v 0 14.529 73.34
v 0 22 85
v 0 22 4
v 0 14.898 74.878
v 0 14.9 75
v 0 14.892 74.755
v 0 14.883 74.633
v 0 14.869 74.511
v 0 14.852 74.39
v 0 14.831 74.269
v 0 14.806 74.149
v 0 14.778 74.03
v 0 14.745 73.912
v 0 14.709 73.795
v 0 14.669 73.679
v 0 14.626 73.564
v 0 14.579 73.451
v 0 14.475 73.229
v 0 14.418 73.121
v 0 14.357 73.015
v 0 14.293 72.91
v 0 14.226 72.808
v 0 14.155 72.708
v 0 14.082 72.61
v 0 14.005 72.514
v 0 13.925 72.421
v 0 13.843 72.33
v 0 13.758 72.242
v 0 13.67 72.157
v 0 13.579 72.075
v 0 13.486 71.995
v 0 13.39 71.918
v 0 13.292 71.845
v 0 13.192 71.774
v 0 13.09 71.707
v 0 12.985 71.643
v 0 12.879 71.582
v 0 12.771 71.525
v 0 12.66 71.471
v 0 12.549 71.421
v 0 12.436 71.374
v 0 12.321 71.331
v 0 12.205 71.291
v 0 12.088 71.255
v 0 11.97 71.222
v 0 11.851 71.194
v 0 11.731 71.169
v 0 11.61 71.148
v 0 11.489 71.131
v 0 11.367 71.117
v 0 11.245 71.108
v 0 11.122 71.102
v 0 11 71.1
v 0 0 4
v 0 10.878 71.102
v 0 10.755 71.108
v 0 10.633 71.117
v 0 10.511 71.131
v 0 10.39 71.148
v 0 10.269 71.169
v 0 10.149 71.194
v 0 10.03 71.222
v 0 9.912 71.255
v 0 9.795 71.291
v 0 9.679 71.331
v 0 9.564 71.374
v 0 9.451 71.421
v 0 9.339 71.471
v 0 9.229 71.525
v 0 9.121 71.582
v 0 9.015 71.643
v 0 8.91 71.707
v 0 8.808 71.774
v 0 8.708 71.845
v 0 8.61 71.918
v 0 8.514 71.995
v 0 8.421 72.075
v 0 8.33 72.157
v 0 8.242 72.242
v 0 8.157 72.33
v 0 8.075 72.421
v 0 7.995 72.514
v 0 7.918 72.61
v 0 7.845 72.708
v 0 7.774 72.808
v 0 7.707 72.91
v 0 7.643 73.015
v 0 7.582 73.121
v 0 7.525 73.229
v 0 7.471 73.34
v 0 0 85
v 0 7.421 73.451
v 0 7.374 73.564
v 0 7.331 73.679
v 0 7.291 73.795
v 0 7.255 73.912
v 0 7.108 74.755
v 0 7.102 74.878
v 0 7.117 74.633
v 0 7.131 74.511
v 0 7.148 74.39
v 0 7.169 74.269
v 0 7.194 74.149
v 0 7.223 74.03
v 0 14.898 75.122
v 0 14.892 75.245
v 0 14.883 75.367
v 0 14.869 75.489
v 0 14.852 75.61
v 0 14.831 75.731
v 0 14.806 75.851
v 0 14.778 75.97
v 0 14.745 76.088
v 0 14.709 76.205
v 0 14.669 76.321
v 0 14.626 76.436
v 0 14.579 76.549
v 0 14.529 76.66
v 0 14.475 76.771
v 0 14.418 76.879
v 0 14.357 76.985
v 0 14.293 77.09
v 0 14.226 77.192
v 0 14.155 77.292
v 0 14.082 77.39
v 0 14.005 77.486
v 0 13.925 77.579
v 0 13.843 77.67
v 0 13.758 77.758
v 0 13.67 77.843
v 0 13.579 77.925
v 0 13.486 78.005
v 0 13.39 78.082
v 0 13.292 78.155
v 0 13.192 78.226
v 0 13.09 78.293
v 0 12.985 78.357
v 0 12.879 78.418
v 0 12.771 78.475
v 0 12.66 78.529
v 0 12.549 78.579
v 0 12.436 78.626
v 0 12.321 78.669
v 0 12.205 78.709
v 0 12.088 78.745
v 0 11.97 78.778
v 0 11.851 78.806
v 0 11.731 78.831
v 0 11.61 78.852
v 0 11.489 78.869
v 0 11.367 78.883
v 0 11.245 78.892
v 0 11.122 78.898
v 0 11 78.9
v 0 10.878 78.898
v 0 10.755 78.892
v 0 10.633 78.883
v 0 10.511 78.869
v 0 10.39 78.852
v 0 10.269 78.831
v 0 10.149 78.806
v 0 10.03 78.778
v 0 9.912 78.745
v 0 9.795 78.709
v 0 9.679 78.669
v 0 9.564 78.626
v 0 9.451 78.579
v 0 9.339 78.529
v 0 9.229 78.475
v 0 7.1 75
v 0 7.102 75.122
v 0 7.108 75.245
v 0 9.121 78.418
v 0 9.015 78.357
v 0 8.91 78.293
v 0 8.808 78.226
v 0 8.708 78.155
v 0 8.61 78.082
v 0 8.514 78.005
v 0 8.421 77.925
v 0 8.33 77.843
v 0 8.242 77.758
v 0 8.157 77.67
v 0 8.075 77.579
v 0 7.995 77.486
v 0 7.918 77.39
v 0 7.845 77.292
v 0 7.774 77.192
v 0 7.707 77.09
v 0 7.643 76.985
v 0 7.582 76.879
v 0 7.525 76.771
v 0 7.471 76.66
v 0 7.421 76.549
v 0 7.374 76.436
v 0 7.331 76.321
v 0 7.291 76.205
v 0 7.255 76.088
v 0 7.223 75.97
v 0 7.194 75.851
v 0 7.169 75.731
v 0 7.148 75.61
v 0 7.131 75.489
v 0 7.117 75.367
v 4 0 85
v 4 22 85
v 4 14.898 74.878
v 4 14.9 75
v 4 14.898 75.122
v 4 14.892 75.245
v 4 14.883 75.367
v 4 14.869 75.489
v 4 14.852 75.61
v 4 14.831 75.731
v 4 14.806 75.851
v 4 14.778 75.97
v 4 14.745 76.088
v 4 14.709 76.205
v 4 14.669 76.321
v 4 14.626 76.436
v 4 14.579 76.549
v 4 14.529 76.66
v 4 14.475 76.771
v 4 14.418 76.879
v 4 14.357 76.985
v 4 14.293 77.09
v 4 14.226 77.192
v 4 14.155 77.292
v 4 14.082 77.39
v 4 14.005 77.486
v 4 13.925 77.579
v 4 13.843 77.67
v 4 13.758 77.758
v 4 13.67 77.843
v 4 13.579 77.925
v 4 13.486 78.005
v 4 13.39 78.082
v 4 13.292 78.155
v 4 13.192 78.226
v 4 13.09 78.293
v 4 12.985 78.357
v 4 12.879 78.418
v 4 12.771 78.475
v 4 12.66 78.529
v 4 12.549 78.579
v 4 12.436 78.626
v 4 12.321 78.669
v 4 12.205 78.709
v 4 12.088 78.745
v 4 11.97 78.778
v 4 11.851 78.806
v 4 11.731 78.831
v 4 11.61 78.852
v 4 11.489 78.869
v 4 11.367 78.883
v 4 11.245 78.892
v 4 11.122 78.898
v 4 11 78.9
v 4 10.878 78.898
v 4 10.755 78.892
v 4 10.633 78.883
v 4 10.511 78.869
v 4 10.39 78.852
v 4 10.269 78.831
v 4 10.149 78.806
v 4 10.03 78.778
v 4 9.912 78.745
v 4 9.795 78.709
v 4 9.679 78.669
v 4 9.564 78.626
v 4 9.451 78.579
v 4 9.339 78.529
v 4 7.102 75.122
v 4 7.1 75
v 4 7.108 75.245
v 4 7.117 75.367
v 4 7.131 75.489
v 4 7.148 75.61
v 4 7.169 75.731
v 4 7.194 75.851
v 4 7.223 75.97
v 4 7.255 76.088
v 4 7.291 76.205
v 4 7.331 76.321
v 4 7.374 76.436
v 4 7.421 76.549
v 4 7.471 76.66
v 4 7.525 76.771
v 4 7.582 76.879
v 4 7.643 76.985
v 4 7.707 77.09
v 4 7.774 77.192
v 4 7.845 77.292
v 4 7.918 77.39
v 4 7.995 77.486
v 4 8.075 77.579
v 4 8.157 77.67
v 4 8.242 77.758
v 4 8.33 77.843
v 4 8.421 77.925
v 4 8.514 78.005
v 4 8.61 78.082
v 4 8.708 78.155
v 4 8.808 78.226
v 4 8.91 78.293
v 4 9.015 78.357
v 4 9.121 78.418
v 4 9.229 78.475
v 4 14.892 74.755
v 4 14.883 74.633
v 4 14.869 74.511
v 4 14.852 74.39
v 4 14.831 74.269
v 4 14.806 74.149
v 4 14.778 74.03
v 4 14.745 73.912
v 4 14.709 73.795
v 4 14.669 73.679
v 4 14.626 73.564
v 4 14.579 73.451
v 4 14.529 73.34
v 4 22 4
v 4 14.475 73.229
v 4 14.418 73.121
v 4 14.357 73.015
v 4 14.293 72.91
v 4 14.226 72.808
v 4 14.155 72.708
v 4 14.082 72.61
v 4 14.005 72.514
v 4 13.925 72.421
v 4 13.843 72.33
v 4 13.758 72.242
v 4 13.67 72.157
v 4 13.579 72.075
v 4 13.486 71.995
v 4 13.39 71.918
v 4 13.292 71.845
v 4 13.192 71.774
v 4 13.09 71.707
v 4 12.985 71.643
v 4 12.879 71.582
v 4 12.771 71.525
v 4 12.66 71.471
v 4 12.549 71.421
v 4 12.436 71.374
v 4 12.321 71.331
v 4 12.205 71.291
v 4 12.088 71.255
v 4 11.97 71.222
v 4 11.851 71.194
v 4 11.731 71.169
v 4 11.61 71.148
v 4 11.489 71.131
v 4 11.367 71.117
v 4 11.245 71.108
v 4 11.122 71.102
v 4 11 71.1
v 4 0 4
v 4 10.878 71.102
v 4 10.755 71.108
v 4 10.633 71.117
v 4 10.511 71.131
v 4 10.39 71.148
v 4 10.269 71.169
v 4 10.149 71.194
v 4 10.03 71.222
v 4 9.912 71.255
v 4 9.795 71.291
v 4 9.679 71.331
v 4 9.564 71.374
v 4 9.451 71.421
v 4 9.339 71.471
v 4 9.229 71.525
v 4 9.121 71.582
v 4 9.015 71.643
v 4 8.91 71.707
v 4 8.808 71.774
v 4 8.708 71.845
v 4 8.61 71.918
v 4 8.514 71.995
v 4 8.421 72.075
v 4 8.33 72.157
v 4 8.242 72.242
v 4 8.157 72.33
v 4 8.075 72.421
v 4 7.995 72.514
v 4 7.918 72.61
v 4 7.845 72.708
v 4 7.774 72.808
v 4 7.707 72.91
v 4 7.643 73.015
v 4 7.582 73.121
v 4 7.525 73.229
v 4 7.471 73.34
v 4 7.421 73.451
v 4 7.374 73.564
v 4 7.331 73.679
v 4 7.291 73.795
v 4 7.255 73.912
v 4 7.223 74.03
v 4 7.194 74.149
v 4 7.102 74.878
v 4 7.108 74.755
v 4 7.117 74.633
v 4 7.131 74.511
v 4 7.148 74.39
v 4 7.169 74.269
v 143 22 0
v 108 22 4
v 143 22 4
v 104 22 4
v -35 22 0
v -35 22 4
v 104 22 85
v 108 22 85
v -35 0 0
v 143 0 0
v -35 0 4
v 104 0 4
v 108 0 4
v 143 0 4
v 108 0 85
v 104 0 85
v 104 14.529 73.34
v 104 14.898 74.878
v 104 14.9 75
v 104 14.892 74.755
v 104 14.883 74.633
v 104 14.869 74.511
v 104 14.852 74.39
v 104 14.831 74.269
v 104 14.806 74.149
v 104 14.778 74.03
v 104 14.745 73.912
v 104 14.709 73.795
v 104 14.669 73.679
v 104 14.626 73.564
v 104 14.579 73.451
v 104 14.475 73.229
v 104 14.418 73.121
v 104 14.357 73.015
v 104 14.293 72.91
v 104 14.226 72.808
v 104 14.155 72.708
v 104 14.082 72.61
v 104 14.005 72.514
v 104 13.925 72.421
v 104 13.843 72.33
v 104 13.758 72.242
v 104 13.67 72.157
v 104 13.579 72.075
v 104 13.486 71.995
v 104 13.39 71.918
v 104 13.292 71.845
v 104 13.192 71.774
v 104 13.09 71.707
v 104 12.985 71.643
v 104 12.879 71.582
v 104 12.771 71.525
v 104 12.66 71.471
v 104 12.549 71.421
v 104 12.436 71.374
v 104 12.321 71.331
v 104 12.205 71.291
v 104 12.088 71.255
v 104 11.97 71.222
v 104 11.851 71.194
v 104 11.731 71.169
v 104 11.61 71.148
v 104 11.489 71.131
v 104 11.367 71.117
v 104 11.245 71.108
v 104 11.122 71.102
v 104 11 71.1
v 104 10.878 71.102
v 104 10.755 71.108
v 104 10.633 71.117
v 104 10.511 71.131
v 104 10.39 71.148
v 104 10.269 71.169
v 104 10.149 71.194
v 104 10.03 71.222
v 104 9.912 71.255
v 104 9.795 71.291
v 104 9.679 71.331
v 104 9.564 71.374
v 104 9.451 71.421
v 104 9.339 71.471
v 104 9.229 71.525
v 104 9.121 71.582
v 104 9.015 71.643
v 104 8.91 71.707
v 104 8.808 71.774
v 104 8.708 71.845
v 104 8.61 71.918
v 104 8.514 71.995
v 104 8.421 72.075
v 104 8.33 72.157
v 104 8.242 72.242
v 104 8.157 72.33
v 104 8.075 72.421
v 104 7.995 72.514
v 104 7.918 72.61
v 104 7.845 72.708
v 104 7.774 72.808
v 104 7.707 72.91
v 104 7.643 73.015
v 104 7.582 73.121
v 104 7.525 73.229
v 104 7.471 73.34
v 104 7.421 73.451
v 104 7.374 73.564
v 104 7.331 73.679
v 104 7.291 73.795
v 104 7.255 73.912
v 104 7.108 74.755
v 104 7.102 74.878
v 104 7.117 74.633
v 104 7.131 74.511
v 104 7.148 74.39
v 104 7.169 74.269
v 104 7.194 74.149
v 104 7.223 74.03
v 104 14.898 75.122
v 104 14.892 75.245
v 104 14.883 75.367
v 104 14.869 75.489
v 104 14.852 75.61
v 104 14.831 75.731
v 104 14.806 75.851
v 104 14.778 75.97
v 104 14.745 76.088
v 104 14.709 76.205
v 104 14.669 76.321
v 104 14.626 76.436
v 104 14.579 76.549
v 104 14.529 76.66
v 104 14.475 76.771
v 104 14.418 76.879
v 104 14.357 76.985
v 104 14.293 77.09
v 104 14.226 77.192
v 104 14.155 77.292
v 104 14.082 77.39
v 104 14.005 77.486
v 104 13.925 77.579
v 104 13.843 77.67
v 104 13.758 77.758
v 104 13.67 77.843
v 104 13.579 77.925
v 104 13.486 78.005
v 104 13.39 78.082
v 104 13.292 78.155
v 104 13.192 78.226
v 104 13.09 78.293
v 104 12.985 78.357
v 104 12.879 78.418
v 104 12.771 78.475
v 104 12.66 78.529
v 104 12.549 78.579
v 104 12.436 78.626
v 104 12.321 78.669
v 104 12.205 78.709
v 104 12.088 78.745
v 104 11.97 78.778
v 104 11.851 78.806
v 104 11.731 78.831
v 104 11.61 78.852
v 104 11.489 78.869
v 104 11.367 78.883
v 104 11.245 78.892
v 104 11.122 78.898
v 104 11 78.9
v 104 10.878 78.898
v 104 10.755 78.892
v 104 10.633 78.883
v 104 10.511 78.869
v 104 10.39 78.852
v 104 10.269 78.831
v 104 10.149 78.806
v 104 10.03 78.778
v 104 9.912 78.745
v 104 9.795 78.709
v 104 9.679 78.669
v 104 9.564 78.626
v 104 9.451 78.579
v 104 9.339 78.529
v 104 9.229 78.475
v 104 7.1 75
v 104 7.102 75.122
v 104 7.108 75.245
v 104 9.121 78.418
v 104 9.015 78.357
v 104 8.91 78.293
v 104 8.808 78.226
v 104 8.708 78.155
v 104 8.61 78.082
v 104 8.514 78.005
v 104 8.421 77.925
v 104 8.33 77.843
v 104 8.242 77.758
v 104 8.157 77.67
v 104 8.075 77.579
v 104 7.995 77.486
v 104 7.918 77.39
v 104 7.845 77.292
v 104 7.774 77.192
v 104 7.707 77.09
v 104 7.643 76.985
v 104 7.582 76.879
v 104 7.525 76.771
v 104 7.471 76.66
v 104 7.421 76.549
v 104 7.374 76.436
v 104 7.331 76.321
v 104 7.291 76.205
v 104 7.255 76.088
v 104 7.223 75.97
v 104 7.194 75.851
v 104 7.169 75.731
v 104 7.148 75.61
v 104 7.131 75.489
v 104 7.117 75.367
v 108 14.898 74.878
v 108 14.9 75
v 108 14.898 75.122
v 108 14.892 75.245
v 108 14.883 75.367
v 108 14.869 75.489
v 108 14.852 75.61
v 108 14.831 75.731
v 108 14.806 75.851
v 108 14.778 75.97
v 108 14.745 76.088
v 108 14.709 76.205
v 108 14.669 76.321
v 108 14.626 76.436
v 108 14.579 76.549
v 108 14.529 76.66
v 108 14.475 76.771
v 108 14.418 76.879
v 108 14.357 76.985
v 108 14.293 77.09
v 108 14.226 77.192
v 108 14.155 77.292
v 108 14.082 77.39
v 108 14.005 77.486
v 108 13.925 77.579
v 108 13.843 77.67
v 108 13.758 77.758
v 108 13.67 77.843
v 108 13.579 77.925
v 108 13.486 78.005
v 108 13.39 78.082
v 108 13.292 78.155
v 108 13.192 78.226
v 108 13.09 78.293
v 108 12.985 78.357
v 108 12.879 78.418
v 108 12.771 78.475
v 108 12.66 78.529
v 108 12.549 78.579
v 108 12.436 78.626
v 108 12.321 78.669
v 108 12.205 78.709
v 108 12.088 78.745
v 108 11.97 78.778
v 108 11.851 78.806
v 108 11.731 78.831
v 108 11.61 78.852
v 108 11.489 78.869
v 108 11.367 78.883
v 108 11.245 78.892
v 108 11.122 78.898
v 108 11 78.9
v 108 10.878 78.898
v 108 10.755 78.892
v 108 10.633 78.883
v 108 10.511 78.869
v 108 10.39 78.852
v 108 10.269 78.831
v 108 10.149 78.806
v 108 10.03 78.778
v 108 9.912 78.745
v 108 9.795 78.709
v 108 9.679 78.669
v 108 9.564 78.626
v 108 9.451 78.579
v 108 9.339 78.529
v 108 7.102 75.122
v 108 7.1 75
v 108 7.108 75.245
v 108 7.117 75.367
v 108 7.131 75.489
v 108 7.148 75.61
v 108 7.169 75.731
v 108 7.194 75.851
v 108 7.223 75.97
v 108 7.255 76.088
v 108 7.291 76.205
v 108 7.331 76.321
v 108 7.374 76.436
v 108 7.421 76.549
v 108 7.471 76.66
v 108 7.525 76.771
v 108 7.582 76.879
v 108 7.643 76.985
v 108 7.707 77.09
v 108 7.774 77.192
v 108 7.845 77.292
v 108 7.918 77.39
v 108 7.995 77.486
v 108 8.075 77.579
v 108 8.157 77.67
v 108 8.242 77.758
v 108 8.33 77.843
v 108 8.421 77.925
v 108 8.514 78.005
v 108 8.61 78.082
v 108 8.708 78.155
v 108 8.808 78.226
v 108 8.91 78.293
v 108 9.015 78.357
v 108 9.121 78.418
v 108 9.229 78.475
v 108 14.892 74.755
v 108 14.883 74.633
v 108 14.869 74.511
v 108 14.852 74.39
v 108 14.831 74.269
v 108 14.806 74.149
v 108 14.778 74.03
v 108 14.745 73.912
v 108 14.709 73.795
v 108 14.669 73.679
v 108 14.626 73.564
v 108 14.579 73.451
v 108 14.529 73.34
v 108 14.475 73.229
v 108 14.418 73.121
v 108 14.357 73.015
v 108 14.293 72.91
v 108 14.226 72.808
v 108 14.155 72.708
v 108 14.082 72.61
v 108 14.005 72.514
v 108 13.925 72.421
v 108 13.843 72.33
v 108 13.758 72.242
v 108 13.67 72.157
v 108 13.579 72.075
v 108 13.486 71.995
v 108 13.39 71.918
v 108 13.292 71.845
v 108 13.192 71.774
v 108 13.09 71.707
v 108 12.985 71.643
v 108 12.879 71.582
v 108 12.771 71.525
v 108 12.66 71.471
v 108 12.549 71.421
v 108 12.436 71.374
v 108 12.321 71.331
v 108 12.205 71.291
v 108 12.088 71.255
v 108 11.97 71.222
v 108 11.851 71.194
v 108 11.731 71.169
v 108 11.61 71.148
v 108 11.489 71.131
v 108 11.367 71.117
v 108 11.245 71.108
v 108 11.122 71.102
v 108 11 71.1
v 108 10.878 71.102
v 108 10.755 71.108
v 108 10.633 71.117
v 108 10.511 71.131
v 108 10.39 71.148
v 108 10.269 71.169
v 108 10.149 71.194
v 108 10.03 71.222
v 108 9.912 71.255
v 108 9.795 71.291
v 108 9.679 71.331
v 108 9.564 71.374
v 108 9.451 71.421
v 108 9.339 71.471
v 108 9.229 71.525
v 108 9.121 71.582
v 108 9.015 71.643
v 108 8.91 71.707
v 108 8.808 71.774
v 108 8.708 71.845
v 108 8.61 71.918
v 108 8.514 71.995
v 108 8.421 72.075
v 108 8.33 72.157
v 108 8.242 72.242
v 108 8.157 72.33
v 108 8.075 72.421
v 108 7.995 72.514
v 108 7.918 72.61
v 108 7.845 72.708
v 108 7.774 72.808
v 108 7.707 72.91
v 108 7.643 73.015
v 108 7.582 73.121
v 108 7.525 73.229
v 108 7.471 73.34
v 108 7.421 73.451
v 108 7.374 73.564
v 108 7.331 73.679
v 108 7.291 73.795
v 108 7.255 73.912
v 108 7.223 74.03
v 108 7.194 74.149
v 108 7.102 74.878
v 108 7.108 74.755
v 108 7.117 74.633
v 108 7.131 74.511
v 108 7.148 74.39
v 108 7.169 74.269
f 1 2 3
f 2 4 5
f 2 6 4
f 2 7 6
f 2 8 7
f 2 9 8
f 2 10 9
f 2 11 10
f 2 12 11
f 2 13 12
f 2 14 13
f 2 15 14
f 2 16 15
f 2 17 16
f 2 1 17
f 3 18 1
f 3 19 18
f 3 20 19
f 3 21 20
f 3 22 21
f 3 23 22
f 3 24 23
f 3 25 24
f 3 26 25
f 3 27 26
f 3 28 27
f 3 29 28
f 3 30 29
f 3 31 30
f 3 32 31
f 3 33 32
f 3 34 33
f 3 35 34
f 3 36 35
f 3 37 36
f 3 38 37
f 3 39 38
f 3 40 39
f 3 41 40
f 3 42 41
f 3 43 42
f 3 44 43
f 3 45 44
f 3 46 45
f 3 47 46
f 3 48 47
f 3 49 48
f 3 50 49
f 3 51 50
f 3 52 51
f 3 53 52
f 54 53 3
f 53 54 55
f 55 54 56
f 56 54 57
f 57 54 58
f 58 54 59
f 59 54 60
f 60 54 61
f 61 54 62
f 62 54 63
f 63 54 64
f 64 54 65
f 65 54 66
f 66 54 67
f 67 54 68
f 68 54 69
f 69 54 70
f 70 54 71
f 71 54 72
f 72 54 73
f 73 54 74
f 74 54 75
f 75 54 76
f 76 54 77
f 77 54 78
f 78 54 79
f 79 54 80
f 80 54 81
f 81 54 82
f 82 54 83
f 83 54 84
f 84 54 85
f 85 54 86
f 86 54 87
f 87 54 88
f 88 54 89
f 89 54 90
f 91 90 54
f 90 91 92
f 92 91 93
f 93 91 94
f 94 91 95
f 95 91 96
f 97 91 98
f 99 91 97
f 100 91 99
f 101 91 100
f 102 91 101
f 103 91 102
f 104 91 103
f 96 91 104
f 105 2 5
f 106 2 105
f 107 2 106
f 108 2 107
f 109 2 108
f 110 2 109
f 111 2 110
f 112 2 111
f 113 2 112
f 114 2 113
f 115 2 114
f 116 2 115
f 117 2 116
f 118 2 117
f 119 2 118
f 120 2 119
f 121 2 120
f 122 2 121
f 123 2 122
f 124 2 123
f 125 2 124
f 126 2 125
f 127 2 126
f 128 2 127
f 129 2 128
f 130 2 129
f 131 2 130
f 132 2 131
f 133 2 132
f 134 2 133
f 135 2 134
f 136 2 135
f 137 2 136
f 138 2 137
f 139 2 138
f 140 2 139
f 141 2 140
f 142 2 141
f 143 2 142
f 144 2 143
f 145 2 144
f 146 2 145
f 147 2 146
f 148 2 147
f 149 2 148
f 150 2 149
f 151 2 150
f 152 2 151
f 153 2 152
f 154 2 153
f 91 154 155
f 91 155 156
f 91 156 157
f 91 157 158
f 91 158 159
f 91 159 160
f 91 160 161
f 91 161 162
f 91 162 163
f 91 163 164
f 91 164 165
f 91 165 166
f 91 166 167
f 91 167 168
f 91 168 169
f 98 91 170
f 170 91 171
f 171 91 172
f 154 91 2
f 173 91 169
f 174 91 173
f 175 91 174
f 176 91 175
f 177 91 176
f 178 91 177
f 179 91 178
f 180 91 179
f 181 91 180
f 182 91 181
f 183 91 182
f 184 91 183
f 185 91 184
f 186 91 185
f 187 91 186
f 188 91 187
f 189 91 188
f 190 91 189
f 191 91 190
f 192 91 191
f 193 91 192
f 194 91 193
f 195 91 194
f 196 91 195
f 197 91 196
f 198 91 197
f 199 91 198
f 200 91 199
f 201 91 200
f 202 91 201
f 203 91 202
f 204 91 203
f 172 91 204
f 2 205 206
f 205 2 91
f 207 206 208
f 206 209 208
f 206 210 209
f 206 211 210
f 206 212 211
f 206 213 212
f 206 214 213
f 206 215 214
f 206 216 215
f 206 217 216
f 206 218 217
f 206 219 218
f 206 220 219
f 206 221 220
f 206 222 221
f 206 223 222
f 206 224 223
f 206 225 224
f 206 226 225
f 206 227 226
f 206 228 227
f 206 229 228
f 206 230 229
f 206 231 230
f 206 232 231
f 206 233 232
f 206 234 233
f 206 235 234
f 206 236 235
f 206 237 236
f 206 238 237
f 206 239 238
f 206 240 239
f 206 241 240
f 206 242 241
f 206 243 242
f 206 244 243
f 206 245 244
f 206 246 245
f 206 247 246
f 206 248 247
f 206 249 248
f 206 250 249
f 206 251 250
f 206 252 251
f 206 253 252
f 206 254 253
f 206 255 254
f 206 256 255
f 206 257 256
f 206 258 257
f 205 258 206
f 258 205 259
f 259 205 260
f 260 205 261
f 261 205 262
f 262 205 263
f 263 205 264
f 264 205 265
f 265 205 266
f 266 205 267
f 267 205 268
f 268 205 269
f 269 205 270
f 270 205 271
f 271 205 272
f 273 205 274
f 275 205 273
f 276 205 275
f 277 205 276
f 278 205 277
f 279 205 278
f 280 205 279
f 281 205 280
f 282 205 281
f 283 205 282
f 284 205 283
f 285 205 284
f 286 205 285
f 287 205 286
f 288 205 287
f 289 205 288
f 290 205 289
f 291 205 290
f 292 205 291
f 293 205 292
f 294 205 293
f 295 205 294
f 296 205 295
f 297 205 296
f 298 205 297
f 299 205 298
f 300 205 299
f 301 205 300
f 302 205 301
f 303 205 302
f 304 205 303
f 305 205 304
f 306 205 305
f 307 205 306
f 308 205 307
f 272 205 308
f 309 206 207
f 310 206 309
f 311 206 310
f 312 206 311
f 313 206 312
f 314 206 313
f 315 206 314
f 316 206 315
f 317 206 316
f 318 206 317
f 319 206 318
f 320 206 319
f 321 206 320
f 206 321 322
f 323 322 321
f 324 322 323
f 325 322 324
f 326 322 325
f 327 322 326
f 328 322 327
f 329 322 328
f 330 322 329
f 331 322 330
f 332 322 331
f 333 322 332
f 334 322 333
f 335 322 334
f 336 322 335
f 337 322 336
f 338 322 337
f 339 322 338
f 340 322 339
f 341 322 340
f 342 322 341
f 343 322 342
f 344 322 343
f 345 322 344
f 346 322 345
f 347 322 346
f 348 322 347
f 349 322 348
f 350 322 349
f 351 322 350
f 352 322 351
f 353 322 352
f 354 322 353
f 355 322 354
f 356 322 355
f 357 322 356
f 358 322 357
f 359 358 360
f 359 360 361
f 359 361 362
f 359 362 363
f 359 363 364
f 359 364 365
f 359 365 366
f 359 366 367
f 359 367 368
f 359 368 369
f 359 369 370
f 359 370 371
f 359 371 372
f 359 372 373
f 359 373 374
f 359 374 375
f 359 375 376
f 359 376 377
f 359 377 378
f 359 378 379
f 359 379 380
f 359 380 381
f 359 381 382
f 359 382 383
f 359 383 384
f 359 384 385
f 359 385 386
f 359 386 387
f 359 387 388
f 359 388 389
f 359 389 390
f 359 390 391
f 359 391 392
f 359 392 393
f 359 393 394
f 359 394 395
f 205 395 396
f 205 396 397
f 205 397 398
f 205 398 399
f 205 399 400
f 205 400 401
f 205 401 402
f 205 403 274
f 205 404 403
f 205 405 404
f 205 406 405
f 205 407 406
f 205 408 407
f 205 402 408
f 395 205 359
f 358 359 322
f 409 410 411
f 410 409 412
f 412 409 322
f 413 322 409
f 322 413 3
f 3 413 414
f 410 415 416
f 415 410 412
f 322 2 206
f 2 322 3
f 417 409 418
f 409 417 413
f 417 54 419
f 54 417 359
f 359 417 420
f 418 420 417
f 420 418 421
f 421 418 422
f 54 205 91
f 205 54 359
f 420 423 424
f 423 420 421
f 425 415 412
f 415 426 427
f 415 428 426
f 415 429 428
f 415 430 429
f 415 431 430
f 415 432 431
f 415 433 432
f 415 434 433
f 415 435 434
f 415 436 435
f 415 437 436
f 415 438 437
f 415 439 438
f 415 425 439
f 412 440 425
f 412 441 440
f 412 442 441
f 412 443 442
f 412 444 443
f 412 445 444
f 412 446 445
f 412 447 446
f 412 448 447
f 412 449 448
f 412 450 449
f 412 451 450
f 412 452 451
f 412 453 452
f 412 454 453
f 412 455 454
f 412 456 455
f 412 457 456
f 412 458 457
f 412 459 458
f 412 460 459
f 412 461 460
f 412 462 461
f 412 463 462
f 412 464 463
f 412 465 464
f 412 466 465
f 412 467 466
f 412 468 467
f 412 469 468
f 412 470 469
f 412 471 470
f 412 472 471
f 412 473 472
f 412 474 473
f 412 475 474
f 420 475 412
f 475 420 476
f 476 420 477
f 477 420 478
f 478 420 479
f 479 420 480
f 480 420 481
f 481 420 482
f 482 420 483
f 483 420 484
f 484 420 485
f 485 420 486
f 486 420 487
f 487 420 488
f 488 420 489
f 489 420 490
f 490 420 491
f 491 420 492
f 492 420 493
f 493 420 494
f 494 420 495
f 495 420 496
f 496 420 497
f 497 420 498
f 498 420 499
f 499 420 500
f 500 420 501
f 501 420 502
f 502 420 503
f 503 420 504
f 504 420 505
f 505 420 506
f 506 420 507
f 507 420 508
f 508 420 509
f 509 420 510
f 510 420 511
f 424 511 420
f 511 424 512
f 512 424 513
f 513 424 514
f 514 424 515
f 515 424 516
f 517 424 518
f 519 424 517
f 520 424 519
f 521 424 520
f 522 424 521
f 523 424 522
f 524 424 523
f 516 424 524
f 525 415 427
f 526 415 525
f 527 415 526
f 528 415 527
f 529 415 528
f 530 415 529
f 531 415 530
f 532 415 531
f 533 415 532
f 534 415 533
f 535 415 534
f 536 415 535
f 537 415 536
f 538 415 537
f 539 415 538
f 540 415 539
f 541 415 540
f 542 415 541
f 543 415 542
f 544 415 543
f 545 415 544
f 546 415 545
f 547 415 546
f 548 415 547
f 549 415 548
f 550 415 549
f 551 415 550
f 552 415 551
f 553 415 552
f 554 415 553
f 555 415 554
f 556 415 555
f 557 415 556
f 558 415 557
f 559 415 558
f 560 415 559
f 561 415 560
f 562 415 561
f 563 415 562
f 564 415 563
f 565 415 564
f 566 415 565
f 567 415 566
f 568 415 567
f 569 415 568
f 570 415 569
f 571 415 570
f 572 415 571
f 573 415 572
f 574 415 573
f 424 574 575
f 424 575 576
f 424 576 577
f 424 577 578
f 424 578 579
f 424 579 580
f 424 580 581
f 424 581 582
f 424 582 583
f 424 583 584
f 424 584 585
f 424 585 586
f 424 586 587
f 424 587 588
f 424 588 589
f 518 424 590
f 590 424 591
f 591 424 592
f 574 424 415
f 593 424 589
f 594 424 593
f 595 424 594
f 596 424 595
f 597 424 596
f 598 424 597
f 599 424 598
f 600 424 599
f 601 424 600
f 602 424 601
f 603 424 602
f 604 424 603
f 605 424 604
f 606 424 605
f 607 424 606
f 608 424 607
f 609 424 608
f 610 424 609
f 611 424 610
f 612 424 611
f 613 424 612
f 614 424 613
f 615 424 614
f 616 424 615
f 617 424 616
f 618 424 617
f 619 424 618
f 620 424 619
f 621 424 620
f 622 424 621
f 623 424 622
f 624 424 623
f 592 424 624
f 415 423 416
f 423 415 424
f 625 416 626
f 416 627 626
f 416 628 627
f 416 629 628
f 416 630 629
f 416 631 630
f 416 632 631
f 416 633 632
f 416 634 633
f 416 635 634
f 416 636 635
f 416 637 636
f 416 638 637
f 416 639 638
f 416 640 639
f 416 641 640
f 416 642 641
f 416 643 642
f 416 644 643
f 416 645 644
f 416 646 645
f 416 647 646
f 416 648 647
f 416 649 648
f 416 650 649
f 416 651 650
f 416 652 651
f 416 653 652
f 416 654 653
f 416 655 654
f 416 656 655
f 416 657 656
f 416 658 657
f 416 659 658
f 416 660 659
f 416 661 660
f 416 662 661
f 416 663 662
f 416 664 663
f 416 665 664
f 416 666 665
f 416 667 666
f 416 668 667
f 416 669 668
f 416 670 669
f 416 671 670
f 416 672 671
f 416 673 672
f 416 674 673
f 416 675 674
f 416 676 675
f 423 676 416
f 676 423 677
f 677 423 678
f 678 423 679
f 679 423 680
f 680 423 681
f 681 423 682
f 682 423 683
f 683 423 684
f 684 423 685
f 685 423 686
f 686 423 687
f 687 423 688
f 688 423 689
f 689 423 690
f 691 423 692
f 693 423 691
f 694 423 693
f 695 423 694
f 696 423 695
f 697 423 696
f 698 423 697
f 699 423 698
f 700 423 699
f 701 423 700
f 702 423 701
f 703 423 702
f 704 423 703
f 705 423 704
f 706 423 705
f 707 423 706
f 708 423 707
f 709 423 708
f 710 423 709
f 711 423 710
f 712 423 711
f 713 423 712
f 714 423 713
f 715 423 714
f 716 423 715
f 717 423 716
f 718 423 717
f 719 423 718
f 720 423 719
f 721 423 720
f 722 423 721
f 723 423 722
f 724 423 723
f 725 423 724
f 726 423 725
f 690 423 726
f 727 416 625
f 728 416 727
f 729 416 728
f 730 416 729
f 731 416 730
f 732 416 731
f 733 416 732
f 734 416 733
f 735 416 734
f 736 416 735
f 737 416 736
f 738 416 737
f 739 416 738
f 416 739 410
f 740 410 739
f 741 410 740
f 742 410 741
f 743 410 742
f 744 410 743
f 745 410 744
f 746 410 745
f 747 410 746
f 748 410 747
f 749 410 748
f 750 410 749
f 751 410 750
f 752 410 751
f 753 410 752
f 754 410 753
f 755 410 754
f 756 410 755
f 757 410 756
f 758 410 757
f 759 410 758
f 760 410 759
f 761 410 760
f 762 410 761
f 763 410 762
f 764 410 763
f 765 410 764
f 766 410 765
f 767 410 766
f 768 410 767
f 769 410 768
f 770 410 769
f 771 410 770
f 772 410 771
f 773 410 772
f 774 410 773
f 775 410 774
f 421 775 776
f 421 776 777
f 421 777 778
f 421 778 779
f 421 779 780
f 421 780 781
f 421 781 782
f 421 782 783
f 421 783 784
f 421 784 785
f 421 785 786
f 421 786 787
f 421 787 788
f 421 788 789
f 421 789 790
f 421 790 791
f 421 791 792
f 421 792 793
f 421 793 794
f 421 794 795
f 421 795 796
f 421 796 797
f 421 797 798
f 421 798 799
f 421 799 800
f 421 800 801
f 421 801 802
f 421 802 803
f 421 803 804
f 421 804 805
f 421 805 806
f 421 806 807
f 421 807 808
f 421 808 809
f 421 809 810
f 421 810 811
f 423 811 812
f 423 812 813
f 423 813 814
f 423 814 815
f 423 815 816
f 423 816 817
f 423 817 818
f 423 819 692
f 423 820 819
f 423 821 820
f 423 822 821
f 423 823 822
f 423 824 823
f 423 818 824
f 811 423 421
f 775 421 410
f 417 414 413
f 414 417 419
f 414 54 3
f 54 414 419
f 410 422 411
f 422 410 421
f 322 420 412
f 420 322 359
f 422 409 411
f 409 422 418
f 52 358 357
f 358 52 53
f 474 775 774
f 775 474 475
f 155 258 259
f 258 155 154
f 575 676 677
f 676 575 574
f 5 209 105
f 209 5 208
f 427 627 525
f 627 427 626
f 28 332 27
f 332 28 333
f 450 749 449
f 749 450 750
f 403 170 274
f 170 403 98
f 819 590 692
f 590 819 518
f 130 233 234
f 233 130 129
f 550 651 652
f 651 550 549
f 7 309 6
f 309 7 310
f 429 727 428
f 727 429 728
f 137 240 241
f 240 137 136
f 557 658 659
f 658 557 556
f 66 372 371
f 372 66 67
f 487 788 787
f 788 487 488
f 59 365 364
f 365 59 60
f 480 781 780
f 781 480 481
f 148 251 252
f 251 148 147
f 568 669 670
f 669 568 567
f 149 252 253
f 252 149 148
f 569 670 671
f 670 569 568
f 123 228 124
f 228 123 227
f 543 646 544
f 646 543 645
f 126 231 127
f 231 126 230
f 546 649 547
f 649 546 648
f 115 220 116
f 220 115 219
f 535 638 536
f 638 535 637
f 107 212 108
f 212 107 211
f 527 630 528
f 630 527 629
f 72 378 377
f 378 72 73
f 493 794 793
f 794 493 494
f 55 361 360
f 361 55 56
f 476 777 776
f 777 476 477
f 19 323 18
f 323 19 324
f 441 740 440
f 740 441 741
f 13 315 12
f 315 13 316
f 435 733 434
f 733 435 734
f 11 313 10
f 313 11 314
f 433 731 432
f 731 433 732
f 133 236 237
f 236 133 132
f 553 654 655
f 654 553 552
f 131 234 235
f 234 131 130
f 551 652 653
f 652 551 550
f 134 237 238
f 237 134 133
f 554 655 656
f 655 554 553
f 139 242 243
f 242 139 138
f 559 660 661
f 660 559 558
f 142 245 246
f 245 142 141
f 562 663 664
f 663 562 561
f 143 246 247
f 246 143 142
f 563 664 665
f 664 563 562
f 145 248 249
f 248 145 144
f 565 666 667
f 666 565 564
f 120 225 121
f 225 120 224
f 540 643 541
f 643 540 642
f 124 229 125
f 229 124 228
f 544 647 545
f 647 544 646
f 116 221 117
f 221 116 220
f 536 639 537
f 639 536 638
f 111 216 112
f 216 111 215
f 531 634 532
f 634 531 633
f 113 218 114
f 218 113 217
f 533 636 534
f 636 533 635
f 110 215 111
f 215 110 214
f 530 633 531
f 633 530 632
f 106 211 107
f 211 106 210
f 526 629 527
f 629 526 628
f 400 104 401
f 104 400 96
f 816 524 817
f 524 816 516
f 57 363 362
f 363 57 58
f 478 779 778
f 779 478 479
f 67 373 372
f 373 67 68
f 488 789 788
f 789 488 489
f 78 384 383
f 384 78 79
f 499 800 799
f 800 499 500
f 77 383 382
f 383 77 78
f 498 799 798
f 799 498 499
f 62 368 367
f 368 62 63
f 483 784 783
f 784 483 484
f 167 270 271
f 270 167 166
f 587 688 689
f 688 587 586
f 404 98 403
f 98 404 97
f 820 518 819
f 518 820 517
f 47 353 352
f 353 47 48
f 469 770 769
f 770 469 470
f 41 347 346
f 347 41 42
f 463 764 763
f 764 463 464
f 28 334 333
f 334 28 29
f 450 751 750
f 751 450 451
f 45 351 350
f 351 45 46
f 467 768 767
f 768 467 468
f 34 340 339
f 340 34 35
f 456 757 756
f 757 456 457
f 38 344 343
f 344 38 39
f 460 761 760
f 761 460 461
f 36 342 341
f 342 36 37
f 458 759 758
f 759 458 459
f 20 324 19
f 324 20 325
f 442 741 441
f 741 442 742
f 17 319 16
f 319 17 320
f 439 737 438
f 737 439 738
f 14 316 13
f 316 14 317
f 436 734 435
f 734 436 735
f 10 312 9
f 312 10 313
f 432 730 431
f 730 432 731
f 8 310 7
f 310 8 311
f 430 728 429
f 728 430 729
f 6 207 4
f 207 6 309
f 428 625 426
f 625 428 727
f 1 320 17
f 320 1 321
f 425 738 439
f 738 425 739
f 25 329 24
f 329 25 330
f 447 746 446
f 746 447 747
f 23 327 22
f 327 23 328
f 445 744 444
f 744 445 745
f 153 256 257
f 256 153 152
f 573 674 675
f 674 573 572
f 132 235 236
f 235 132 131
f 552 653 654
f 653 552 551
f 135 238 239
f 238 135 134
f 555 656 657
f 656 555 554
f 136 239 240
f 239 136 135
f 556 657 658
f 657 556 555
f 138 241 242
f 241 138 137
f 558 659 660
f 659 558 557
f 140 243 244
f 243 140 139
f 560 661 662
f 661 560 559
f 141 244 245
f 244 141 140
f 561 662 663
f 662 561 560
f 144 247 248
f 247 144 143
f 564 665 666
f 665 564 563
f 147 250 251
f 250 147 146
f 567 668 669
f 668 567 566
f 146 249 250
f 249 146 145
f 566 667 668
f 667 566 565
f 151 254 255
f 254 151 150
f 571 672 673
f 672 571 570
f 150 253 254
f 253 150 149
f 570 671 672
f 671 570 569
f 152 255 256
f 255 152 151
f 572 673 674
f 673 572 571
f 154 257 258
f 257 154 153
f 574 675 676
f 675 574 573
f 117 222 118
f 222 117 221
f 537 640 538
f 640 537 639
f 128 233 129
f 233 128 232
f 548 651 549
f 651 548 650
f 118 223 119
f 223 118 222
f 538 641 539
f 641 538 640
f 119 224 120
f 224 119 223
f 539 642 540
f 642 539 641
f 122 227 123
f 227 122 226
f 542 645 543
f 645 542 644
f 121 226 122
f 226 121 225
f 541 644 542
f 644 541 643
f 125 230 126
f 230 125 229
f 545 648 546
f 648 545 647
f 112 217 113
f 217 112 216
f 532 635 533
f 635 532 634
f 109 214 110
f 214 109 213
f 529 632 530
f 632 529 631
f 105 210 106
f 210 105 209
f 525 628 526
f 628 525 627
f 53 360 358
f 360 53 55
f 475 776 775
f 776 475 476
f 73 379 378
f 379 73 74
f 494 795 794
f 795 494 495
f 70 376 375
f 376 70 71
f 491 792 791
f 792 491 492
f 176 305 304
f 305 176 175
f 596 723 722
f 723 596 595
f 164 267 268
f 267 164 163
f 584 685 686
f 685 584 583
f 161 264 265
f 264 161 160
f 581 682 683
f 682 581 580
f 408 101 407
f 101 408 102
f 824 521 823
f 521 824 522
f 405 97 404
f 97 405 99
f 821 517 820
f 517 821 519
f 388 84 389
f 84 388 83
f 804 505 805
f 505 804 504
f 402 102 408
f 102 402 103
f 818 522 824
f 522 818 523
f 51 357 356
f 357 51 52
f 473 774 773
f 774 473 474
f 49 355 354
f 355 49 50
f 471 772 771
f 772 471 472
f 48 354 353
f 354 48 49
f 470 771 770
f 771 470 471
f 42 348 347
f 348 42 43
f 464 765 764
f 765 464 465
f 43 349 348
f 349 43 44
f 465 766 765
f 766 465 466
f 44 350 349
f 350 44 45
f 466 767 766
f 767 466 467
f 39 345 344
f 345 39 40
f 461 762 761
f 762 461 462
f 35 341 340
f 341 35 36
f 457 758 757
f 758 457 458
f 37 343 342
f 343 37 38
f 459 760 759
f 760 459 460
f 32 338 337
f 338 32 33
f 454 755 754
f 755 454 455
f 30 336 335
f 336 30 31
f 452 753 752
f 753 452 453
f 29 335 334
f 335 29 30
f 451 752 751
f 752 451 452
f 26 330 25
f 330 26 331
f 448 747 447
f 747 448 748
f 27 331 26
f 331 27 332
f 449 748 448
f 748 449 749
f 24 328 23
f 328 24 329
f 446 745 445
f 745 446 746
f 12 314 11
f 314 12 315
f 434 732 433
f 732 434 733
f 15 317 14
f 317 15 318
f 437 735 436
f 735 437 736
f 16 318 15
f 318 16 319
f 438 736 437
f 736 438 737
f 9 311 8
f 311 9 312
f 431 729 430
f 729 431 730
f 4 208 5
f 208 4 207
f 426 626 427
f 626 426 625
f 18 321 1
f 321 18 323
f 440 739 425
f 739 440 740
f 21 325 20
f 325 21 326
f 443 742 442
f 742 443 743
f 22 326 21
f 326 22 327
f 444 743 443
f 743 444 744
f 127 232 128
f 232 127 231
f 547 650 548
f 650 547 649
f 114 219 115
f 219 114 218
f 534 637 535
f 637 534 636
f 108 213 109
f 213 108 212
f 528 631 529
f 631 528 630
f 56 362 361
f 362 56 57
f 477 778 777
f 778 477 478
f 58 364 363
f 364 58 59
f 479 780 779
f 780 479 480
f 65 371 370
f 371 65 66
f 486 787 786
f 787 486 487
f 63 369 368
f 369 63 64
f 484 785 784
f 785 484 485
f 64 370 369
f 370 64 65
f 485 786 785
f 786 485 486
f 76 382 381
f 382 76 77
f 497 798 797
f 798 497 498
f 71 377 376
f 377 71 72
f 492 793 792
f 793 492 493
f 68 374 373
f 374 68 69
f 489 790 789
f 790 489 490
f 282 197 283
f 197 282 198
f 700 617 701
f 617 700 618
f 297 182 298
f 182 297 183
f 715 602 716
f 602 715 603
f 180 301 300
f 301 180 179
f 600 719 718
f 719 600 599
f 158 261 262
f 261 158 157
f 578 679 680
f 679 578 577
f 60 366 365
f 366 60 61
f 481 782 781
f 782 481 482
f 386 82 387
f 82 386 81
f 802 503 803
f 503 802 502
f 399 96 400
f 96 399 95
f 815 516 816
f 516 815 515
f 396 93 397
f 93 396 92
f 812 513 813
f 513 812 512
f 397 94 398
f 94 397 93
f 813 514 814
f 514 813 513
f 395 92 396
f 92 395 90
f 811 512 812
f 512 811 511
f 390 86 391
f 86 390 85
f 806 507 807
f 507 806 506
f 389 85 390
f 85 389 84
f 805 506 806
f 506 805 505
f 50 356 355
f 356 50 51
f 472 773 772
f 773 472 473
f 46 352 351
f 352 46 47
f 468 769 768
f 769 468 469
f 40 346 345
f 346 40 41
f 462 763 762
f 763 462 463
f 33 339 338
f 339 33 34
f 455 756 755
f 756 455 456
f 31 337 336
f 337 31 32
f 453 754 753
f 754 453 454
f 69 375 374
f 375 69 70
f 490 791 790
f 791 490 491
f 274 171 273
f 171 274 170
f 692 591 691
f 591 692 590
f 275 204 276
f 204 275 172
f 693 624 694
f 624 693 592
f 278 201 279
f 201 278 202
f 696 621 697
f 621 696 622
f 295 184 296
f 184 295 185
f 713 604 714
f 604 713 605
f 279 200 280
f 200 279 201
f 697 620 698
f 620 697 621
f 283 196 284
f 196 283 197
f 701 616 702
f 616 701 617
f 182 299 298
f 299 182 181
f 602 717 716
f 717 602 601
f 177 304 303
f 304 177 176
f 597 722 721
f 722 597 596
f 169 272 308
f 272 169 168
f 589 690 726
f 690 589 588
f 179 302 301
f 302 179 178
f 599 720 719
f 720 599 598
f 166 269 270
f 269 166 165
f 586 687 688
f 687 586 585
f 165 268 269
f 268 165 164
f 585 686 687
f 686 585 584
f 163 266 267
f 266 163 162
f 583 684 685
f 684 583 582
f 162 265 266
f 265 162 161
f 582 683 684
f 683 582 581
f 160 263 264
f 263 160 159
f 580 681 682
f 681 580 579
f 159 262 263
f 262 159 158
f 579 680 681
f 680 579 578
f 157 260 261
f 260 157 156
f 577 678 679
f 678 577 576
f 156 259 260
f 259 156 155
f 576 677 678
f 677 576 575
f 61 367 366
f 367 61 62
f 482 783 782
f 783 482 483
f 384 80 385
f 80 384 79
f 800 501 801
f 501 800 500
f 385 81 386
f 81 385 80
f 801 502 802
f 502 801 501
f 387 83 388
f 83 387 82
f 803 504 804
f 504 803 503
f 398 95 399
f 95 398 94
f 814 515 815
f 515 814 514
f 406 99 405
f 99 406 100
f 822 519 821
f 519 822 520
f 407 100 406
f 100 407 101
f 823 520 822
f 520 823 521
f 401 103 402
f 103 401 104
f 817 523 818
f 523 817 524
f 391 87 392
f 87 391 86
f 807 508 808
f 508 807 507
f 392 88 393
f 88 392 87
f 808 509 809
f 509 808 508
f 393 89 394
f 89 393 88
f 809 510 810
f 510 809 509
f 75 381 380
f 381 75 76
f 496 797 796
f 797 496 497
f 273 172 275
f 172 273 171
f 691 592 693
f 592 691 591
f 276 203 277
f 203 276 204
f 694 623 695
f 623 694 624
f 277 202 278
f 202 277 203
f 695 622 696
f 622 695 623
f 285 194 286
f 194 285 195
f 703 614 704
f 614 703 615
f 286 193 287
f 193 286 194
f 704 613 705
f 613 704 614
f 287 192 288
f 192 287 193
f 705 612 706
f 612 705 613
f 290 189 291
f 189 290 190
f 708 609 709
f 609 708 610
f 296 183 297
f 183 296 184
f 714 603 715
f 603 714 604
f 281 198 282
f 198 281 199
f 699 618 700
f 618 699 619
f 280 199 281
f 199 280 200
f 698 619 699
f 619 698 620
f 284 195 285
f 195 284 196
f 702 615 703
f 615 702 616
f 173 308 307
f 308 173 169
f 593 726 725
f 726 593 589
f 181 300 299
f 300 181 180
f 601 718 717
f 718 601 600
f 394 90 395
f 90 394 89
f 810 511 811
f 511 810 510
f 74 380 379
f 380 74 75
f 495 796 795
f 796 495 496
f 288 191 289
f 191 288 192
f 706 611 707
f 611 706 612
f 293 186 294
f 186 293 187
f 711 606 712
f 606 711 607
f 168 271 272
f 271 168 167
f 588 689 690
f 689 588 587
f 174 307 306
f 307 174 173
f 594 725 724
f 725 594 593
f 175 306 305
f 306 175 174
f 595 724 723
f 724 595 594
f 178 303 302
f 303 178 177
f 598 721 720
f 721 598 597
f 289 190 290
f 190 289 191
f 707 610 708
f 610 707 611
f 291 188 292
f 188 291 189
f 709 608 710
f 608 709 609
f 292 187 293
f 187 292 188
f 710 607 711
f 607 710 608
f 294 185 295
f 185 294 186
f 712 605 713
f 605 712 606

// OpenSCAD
h = 85;
b = 100;
w = 22;
d = 4;
r = 7.8 /2;
bh = 75;
s = b + 70;

difference(){
    union(){
        cube([d, w, h]);
        translate([b+d, 0, 0]){
            cube([d, w, h]);
        }
        translate([((b-s)/2), 0 ,0]){
            cube([s+(2*d), w, d]);
        }
    }
    translate([-1, w/2, bh]){
            rotate([0, 90, 0]){
            cylinder(h=b+(2*d)+2, r1=r, r2=r, $fn=200);
        }
    }   
}
